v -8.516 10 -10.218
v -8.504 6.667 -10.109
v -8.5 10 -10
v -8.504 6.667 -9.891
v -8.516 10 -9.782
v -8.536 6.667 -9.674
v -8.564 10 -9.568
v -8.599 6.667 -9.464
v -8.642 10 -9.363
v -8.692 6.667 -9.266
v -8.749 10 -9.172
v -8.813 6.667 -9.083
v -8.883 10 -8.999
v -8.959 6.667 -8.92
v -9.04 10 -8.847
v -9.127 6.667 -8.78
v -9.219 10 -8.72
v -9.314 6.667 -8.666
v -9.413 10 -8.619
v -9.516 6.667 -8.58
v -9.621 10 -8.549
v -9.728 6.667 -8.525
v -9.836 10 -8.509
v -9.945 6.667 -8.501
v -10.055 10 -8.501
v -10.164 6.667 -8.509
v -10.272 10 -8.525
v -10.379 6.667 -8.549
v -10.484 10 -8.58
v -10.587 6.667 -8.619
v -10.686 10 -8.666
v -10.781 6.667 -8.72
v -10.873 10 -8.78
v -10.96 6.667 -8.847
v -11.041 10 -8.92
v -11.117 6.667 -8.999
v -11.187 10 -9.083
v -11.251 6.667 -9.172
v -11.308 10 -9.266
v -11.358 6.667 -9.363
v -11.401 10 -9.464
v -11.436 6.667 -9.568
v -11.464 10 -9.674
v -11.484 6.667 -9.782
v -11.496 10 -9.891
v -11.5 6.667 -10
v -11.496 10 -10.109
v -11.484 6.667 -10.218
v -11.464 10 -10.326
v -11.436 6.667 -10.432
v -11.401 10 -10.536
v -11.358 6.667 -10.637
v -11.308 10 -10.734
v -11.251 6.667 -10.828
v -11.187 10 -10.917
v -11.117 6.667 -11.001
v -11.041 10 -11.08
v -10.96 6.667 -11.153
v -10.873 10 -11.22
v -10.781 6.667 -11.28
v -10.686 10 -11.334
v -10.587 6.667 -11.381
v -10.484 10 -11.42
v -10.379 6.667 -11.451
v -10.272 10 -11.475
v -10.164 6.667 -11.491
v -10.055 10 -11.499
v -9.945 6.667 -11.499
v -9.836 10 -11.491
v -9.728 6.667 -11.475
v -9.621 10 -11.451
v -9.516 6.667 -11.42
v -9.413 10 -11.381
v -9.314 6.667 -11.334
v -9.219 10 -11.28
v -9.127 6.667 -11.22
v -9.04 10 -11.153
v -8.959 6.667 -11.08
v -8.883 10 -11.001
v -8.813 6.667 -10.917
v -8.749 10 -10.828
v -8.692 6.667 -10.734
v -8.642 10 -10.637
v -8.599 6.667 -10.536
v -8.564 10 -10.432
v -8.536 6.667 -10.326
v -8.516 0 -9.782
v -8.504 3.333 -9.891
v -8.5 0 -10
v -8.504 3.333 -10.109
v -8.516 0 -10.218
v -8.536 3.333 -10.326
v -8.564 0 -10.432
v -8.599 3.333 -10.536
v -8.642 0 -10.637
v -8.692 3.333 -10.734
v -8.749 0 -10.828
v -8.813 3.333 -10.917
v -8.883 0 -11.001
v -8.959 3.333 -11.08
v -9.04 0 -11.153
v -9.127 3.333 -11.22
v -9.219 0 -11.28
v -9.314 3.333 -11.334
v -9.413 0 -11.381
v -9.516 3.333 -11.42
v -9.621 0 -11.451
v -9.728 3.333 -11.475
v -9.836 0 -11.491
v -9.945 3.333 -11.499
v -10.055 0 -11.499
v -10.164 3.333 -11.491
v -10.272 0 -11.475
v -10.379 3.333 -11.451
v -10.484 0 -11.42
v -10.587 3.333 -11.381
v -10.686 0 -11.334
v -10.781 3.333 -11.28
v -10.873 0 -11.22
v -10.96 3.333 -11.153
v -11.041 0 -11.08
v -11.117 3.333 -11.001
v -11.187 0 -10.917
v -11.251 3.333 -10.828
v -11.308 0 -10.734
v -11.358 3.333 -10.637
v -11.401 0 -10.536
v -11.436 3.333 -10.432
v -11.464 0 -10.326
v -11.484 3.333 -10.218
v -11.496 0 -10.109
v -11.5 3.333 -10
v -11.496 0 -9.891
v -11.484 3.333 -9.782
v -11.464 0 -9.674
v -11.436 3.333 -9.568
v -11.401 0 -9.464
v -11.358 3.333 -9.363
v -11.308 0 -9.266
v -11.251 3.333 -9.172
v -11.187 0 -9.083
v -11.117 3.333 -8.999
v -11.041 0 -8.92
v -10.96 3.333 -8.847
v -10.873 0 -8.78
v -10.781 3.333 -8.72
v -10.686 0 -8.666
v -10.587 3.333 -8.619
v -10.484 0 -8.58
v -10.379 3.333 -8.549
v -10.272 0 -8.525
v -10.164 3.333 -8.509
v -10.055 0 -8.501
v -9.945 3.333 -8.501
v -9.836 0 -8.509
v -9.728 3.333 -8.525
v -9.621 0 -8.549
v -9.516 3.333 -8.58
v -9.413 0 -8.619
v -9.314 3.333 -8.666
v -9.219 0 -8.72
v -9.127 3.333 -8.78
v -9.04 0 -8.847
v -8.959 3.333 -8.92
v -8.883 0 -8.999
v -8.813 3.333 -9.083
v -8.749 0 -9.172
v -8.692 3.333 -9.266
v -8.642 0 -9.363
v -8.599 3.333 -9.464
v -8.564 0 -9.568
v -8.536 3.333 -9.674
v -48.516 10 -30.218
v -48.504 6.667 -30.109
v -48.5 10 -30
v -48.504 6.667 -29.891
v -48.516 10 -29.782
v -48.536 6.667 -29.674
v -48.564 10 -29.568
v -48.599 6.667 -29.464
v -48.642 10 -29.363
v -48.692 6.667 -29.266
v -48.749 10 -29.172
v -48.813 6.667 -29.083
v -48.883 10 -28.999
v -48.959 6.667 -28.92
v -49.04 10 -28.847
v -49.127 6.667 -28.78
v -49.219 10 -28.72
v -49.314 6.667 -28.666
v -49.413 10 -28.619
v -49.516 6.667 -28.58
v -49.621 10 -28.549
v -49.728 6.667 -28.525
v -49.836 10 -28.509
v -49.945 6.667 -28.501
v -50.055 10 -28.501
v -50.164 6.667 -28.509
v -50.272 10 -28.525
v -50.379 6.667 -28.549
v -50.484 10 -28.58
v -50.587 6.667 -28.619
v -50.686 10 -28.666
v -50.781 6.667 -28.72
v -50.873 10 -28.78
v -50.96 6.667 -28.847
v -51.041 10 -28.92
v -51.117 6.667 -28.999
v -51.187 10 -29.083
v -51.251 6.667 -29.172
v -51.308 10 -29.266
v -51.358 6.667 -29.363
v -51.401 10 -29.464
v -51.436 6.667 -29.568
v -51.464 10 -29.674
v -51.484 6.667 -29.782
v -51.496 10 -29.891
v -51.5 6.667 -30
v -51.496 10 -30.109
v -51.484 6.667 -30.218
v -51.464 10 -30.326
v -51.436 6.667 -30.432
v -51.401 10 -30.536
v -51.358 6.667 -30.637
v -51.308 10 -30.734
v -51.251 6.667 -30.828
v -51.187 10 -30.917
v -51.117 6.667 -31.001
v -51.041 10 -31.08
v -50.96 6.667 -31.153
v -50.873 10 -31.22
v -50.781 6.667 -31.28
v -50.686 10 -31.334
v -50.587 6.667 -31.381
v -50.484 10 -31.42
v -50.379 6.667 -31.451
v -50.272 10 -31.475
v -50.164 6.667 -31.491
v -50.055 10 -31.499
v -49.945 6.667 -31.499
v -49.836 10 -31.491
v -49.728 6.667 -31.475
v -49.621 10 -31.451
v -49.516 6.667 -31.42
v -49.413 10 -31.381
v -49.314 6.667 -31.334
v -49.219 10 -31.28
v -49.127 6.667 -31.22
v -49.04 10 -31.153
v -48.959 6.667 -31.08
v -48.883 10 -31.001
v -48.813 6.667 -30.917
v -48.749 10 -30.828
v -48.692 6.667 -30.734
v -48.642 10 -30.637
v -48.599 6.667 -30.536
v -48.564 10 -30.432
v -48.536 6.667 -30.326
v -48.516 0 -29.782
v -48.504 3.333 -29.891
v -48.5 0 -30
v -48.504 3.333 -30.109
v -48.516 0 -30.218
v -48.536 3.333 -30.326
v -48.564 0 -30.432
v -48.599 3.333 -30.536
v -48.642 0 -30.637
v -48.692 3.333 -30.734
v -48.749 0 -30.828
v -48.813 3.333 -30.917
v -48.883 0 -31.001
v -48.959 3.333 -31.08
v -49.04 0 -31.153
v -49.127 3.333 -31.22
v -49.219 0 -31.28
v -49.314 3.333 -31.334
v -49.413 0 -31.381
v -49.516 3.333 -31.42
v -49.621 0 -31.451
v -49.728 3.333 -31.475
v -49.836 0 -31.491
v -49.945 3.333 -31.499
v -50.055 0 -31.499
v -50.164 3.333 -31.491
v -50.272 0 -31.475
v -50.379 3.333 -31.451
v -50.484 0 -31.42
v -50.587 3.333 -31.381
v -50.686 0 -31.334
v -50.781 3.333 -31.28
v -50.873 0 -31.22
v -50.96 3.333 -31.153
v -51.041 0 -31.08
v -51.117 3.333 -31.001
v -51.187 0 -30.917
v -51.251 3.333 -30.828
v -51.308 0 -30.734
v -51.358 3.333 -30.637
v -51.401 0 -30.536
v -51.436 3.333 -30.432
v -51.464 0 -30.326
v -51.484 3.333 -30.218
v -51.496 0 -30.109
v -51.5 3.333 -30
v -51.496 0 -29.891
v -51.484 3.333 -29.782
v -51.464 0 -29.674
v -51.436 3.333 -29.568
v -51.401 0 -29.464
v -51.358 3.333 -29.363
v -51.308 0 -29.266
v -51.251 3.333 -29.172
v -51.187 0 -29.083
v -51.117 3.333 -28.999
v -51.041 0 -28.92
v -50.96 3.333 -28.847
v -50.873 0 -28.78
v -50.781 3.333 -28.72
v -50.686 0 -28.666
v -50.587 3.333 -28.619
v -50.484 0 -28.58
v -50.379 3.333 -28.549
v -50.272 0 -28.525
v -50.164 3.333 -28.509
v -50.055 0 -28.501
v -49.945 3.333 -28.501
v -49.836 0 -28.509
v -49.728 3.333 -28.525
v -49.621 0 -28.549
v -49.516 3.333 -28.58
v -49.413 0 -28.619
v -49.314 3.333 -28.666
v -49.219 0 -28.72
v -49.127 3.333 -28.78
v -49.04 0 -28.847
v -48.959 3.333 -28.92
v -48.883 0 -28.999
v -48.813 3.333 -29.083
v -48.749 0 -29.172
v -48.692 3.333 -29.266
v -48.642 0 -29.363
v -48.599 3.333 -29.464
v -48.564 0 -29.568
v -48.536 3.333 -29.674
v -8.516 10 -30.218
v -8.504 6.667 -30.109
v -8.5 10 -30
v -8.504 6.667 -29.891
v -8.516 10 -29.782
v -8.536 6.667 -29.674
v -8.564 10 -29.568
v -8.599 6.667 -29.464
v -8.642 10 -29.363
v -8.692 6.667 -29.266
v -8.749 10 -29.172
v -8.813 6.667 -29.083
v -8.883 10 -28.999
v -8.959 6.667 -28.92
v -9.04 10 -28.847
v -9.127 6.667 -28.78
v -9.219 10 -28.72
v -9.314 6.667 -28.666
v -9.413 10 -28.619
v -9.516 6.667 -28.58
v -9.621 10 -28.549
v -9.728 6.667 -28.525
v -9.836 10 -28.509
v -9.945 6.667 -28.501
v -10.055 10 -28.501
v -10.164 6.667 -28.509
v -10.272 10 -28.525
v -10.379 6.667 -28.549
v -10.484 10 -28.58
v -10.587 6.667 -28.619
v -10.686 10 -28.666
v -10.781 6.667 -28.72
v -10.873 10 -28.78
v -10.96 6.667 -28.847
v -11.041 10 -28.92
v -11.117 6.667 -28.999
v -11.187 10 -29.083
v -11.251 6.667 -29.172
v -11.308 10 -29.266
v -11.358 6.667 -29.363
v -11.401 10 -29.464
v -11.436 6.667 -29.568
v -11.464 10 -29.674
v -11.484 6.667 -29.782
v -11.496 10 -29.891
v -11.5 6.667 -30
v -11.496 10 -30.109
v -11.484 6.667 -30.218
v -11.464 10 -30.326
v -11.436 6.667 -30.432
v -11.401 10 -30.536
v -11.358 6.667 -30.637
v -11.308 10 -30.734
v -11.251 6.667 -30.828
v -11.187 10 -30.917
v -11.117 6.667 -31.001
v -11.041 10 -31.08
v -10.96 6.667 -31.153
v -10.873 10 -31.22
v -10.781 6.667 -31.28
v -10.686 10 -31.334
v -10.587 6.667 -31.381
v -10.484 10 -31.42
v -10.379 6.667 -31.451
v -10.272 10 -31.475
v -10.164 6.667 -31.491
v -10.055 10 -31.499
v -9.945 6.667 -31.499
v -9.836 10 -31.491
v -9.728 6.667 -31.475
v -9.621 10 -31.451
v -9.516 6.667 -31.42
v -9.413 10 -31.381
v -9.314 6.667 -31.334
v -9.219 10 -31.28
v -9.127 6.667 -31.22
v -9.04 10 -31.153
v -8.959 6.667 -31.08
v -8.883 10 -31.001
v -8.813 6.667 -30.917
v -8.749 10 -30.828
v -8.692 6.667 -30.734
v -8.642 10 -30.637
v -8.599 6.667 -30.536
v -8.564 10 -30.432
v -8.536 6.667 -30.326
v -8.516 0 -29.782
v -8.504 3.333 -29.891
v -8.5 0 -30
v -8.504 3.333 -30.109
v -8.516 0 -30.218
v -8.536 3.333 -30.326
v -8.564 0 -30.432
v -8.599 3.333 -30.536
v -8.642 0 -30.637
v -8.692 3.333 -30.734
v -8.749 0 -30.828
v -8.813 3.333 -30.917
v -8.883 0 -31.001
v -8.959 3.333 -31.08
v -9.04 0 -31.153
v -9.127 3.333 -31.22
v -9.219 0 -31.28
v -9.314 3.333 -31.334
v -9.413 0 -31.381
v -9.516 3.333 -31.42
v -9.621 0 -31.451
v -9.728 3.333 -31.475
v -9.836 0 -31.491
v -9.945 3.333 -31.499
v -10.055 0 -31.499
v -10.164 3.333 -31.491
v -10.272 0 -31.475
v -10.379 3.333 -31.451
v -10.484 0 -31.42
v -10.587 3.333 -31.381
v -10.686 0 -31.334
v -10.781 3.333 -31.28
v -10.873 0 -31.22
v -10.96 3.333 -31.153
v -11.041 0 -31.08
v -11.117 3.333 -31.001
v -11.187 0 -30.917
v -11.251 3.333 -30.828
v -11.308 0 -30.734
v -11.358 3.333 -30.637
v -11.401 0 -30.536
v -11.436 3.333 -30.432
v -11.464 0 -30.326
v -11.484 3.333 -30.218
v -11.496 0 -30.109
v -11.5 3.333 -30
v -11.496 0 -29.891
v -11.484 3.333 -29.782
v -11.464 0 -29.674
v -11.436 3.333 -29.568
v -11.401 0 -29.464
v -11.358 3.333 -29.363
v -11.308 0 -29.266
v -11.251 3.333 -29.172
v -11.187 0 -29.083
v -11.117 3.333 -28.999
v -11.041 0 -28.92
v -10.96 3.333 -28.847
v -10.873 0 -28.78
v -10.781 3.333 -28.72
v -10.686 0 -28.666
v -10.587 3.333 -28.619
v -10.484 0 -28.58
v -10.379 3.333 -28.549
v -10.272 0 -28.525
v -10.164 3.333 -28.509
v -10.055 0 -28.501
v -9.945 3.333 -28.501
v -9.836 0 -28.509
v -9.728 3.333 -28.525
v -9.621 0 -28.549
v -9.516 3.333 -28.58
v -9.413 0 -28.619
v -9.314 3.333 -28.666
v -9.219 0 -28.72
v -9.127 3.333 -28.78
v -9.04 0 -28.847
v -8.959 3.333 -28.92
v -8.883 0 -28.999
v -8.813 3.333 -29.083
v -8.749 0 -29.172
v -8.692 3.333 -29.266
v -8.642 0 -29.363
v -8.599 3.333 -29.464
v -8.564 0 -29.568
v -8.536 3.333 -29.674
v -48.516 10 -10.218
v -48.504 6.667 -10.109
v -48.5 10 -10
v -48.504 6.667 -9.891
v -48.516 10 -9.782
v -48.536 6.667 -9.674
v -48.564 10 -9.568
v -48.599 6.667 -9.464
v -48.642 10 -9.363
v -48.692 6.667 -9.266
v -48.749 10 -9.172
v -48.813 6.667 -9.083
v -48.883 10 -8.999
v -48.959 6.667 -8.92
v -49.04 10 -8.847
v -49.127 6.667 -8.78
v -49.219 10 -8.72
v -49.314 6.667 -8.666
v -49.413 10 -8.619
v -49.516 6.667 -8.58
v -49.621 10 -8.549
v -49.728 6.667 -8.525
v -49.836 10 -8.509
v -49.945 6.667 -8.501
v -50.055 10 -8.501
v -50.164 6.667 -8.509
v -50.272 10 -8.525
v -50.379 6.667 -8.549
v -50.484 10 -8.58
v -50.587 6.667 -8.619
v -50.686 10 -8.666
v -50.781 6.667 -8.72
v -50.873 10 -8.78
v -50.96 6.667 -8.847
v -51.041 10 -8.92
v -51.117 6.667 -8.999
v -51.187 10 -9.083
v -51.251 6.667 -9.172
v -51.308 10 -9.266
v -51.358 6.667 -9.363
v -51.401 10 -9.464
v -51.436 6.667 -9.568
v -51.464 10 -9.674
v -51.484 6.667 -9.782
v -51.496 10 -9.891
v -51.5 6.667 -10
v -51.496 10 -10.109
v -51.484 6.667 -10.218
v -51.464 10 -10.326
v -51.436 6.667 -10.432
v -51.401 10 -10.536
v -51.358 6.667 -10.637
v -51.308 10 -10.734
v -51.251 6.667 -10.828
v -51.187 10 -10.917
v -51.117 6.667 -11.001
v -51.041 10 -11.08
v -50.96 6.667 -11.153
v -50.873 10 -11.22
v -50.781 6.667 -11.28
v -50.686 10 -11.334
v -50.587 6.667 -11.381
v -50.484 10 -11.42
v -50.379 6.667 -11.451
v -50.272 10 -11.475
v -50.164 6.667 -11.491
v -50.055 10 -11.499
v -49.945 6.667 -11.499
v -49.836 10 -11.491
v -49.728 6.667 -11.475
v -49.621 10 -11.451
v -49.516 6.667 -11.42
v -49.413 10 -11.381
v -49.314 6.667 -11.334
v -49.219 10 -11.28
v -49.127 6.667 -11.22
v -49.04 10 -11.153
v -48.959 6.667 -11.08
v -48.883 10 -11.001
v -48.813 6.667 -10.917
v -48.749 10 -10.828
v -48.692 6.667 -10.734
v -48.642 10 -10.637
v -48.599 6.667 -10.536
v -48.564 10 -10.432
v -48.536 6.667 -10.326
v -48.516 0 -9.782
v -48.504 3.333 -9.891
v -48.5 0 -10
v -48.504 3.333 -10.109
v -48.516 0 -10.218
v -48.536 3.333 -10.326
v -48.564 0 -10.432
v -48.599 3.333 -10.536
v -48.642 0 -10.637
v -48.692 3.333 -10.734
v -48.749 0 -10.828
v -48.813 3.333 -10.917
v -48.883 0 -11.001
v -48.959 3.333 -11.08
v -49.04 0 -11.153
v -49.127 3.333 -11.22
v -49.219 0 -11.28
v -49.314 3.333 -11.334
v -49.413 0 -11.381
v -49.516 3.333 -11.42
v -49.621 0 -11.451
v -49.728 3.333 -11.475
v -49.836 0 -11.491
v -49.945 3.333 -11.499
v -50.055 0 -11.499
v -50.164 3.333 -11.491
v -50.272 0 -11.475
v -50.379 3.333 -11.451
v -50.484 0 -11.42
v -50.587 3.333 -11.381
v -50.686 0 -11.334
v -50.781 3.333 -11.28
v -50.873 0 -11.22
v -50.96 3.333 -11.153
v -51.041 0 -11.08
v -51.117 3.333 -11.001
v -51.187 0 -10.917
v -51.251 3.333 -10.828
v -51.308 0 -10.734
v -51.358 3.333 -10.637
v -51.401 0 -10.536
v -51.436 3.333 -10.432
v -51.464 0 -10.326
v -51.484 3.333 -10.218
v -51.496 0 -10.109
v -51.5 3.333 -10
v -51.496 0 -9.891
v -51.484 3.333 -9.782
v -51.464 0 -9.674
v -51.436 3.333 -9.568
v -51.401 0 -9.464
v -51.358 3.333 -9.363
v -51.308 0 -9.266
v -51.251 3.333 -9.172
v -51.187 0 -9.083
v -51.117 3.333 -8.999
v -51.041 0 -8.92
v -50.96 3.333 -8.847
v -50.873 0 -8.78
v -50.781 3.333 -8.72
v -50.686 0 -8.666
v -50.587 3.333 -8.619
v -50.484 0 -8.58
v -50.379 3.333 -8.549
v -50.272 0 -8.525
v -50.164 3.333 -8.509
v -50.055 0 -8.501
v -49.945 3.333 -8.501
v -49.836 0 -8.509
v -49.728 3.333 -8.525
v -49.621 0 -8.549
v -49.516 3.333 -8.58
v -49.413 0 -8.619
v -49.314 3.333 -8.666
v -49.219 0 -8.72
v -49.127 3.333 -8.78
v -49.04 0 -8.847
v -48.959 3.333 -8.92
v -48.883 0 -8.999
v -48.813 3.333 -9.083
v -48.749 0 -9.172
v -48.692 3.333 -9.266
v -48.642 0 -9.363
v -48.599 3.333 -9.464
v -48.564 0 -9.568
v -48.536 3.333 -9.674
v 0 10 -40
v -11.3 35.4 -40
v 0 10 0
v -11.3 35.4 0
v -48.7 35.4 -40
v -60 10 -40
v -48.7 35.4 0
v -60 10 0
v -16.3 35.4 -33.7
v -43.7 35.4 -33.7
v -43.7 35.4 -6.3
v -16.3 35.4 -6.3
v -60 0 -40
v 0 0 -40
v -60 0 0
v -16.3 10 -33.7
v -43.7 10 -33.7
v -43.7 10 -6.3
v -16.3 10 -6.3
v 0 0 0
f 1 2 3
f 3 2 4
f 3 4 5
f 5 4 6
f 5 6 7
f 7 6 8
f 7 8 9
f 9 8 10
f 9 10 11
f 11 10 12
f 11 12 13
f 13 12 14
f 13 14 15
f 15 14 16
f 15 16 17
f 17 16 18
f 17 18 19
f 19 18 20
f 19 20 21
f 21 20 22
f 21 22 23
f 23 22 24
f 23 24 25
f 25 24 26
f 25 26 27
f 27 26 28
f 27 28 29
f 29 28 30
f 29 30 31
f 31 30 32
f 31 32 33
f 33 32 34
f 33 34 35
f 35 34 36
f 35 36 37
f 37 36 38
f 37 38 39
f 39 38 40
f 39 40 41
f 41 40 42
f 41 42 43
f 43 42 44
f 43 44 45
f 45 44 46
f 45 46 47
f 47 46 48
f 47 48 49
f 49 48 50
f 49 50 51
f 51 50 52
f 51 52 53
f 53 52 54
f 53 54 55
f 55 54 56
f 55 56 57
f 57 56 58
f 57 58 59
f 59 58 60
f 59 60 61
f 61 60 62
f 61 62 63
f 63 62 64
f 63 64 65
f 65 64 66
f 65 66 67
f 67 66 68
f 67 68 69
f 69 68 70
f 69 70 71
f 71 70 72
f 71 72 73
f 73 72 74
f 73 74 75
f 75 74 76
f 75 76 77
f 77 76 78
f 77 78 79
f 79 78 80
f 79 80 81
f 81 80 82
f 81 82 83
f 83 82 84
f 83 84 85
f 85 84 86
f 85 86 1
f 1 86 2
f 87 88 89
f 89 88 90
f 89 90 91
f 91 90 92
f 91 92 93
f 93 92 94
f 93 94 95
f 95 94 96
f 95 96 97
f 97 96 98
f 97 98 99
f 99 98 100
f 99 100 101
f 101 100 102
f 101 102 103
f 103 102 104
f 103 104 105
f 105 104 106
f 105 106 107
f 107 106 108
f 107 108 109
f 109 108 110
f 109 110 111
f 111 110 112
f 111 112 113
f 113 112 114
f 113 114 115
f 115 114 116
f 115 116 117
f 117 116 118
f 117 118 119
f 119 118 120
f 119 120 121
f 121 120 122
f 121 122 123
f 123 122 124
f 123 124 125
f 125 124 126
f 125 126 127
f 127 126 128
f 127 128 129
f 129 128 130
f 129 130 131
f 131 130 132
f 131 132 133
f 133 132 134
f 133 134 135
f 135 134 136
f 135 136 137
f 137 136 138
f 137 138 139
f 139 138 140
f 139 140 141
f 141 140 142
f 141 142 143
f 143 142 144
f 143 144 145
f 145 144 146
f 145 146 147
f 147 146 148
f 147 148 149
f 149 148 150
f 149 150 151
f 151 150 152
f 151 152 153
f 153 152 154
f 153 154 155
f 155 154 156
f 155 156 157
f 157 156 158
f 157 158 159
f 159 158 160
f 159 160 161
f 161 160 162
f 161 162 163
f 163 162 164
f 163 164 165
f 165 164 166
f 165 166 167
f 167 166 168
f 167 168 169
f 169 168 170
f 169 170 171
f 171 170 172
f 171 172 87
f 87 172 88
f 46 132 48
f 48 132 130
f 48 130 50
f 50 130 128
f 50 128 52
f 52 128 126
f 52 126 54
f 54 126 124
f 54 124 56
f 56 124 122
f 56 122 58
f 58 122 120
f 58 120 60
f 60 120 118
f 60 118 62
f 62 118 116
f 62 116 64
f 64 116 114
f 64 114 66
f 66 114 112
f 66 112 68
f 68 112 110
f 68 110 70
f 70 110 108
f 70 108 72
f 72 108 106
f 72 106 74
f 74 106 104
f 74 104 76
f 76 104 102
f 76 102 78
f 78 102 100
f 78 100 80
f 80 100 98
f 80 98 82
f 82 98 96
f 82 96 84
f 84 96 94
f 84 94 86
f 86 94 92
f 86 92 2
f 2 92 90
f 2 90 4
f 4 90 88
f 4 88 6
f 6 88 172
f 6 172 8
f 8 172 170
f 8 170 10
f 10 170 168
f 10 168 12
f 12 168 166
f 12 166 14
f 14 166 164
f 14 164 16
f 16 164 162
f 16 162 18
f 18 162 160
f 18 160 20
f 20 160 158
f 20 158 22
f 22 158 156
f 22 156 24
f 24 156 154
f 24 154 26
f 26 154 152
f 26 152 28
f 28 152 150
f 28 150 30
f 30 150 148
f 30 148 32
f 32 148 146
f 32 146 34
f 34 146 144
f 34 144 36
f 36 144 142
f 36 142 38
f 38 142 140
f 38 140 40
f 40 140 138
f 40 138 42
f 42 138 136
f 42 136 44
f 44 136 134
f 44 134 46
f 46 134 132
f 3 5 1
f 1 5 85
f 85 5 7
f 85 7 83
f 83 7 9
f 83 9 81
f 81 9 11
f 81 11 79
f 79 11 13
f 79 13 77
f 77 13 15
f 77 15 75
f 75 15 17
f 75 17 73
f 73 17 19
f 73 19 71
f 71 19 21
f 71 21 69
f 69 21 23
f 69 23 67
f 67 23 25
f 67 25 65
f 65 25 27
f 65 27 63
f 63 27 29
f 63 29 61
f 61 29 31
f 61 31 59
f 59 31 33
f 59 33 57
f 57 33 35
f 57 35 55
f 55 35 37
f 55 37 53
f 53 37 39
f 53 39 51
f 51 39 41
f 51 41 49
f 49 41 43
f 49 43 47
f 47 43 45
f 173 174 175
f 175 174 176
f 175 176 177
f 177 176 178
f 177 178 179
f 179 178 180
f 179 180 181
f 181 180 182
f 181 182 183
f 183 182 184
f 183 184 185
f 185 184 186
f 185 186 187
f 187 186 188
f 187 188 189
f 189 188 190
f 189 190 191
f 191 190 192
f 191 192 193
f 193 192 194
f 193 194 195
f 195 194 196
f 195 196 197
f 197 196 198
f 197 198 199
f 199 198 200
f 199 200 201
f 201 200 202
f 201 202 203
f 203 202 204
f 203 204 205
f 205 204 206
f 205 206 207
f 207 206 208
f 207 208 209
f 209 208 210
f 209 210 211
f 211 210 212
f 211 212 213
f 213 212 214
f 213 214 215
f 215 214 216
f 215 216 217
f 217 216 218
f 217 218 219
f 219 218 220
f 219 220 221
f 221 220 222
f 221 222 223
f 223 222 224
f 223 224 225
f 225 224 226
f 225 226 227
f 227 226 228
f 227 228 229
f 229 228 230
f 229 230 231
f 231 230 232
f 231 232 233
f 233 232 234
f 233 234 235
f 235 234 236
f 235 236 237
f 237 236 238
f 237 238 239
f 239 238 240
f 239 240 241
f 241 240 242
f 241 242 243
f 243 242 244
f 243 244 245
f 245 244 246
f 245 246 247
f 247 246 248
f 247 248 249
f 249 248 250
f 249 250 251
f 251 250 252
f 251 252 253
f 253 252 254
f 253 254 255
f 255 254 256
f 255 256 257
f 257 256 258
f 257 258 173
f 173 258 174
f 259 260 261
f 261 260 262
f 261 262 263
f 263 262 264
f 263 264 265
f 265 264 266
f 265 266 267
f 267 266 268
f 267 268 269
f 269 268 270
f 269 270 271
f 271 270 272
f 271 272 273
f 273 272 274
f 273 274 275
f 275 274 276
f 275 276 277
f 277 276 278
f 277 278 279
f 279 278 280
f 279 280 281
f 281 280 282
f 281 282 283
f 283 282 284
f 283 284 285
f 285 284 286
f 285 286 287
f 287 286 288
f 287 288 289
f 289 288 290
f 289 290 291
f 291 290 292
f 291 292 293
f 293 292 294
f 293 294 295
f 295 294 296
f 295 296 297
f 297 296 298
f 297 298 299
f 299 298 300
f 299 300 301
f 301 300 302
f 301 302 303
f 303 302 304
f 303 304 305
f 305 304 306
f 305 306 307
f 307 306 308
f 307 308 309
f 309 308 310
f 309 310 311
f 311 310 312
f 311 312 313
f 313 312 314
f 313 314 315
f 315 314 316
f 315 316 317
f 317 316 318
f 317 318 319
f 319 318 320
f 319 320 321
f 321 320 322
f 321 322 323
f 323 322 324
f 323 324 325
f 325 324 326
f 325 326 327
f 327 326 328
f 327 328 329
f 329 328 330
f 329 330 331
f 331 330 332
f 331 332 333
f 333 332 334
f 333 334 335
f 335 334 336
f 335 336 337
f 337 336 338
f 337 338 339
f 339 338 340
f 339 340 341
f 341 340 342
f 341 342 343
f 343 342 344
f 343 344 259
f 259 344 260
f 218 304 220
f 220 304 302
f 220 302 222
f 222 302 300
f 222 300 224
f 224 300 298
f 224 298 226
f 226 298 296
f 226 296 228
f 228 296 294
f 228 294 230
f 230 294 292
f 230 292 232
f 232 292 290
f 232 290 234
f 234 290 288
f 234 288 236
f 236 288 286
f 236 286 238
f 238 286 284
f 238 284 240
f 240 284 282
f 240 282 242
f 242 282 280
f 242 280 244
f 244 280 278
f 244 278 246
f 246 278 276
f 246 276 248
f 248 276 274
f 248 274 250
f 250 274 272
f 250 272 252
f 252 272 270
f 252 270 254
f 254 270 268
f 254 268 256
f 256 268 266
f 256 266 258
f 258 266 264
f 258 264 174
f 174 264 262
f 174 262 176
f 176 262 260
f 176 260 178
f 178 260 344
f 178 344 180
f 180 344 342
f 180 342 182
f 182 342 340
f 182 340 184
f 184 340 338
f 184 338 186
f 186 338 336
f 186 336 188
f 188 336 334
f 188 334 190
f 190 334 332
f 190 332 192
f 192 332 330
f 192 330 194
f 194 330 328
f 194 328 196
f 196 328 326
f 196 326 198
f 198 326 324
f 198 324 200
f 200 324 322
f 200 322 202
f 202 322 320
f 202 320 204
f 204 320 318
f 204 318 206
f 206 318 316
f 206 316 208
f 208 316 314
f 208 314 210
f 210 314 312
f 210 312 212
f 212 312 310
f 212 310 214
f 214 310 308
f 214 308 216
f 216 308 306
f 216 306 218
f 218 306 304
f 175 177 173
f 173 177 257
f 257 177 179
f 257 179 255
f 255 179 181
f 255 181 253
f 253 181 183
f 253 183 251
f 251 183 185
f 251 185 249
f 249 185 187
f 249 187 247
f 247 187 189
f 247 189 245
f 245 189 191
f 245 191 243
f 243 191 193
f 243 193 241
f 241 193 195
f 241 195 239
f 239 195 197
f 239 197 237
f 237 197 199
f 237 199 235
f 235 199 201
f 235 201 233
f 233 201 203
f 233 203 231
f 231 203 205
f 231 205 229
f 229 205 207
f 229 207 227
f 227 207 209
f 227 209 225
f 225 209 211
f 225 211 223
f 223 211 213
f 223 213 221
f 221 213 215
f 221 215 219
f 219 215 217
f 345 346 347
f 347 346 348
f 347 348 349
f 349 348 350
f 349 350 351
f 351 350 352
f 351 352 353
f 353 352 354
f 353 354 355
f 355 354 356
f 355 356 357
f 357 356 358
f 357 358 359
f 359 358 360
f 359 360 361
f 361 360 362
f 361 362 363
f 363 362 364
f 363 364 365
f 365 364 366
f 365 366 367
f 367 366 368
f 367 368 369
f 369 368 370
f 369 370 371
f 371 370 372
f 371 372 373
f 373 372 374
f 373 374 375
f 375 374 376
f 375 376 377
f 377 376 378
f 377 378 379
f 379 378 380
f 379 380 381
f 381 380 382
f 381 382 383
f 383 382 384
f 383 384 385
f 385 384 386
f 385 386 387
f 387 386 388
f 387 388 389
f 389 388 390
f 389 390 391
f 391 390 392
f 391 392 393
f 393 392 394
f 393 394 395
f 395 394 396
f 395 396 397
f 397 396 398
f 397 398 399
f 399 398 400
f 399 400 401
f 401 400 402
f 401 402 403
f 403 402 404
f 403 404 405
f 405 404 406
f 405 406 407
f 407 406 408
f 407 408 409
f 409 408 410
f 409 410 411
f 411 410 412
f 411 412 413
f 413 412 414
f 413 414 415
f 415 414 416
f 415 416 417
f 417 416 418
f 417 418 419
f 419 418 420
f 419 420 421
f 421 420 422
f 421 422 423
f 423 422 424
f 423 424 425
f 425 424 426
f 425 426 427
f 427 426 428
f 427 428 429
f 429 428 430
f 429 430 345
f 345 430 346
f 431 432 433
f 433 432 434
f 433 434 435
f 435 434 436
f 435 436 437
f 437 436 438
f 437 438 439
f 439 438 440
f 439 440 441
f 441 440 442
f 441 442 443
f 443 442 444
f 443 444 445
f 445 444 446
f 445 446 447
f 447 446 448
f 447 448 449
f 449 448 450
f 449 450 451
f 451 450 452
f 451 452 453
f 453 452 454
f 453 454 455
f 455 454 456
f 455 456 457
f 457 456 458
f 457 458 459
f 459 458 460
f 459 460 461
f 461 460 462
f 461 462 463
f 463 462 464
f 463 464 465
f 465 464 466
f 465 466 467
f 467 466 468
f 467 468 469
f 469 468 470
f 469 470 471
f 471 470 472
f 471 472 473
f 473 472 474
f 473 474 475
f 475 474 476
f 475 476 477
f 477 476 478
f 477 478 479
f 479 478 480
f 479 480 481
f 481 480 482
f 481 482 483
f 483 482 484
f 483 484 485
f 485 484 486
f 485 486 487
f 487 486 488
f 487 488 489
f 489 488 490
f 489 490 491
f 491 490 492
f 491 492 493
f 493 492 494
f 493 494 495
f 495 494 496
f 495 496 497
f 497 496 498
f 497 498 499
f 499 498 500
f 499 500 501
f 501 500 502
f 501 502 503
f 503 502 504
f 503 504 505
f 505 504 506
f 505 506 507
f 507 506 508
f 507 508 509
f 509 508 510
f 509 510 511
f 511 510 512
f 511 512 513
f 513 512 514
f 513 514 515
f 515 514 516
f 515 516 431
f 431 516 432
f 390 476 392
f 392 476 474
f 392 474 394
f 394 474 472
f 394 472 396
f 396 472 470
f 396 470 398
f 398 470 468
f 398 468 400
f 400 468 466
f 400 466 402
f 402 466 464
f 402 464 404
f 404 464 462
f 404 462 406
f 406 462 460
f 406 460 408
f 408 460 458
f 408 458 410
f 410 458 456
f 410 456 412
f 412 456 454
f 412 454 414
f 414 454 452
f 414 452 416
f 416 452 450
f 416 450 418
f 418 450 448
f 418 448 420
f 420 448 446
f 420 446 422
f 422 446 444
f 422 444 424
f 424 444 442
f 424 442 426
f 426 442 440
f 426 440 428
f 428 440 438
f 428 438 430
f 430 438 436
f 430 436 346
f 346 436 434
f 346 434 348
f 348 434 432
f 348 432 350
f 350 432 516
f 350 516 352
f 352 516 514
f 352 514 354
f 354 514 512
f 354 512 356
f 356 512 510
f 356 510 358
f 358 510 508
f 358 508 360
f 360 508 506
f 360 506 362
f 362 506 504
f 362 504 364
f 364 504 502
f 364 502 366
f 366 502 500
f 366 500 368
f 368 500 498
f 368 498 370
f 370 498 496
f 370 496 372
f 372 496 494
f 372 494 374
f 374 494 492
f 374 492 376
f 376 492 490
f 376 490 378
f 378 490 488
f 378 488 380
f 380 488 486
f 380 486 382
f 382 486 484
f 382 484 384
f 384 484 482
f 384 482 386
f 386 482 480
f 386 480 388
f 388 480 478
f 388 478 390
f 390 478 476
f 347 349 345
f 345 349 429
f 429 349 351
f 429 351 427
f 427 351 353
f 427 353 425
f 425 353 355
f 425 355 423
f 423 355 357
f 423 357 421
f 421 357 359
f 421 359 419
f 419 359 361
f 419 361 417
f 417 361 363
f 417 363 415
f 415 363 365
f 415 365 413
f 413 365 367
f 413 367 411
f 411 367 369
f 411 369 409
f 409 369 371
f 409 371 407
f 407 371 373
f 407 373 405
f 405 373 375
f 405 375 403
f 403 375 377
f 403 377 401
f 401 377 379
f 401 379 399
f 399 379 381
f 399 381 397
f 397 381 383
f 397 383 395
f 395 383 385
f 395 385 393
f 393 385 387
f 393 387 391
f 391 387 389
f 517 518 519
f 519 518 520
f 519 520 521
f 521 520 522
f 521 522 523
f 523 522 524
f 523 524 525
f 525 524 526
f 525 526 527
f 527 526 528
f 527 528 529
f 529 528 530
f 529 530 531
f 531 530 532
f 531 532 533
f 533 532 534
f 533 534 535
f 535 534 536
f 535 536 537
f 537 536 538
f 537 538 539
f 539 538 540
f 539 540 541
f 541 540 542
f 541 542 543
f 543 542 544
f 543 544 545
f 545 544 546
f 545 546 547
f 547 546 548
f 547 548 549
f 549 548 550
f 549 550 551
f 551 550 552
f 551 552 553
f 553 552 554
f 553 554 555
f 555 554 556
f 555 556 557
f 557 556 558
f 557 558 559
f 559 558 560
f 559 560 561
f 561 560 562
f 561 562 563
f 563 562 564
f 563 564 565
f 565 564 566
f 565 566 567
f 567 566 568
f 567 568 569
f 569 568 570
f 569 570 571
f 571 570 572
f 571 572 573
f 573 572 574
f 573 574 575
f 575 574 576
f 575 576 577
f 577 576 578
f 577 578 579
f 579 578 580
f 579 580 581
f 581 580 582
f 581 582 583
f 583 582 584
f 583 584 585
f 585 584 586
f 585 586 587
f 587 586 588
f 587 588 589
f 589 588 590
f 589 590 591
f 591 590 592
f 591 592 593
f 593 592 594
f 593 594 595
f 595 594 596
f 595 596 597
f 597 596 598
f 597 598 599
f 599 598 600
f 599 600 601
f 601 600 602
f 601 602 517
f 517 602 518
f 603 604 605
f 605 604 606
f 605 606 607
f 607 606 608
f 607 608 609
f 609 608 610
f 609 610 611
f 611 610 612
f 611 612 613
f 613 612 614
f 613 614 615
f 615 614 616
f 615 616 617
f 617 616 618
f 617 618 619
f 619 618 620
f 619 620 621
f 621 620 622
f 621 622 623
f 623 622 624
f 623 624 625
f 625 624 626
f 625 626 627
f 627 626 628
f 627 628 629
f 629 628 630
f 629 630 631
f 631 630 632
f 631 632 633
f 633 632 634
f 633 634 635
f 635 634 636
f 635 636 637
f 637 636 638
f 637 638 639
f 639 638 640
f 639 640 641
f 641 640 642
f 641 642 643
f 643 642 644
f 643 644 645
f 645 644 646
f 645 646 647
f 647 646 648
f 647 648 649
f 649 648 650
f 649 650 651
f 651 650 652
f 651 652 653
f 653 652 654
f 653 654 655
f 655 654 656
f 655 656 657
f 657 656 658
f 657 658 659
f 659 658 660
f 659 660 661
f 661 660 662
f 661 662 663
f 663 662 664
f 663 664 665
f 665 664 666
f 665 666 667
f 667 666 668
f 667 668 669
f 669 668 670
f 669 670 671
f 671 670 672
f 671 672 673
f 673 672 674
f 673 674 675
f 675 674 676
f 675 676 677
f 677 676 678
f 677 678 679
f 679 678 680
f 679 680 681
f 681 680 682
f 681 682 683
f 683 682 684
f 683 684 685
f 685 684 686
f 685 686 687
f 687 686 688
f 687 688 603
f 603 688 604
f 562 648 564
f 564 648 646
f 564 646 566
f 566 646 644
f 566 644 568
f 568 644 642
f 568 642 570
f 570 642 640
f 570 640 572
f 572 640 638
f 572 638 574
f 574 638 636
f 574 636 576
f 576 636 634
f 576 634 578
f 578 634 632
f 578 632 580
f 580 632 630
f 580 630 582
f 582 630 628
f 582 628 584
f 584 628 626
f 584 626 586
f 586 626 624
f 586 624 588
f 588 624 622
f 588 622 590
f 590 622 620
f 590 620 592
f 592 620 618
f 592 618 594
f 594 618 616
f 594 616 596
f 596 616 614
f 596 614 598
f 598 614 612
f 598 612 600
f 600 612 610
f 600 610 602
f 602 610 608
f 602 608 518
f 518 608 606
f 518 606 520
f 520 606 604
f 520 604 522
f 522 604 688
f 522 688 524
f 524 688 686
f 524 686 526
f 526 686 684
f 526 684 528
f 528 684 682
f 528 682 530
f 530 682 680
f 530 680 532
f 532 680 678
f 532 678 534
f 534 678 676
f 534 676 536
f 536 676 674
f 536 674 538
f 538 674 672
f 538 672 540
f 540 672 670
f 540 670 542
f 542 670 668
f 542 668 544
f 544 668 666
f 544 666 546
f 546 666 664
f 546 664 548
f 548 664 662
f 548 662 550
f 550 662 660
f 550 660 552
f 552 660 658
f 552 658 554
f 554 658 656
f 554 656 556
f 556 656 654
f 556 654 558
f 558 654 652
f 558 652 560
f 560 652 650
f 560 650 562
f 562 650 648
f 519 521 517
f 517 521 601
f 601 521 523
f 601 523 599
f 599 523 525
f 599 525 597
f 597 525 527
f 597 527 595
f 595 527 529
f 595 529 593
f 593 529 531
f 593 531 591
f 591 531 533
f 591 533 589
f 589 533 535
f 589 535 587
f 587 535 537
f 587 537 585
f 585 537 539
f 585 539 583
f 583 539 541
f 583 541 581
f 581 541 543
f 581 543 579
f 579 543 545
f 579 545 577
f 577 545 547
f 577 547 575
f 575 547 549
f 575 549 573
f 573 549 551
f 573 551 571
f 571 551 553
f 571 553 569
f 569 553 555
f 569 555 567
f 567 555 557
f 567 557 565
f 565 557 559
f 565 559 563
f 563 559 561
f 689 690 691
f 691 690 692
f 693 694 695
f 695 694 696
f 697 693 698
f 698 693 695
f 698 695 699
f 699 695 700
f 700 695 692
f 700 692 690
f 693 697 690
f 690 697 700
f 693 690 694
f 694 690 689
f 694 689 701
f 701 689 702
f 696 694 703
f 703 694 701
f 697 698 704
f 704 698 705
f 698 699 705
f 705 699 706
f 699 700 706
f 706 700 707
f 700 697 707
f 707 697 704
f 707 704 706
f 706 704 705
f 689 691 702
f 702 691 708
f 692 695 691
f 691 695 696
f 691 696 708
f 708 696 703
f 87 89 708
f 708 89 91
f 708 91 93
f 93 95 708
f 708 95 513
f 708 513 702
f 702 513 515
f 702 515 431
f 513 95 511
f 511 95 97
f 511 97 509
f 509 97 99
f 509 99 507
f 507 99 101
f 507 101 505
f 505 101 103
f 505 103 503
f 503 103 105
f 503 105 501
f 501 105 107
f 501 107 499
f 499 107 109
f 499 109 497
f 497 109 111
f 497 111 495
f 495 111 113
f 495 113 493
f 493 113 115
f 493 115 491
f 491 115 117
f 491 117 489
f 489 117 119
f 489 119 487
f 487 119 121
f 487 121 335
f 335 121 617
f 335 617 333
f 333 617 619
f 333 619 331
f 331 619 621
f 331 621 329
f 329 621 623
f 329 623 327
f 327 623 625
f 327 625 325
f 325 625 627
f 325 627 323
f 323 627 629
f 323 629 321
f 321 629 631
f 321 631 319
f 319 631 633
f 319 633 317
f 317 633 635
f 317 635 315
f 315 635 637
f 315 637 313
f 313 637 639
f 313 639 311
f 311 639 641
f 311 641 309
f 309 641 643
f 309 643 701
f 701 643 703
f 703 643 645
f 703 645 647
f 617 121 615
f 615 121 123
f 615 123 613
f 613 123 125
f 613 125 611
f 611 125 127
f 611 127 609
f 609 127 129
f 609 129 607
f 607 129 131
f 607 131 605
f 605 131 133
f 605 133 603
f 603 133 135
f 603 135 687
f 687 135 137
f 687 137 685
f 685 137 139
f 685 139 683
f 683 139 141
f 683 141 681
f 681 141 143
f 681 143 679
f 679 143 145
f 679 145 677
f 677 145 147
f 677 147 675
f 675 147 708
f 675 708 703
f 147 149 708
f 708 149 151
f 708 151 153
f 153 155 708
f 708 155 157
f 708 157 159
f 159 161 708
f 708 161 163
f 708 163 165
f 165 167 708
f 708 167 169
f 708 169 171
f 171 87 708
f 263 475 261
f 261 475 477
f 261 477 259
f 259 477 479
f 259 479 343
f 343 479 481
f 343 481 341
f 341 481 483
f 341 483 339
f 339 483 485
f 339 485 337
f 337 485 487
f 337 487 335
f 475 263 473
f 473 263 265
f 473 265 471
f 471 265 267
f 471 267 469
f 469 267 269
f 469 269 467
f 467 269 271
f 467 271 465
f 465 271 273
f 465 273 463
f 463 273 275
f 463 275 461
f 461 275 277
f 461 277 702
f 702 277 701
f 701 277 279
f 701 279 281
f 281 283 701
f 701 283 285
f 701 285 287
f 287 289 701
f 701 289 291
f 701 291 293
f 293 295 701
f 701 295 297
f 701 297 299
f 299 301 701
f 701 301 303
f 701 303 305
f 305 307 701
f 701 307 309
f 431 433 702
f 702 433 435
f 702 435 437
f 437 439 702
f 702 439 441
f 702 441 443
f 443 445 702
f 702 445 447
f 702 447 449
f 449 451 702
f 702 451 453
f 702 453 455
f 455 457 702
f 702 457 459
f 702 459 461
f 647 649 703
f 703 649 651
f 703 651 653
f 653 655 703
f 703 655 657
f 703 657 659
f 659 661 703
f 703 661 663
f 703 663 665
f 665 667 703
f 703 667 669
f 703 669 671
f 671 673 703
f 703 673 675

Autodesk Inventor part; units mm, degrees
ref_plane "YZ Plane" through (0, 0, 0) normal (1, 0, 0) x (0, 1, 0)
ref_plane "XZ Plane" through (0, 0, 0) normal (0, 1, 0) x (-1, 0, 0)
ref_plane "XY Plane" through (0, 0, 0) normal (0, 0, 1) x (1, 0, 0)
sketch "Sketch1" plane through (0, 0, 0) normal (0, 1, 0) x (-1, 0, 0)
  line L0 (0, 0) -> (60, 0)
  line L1 (60, 0) -> (60, -40)
  line L2 (60, -40) -> (0, -40)
  line L3 (0, -40) -> (0, 0)
  dimension "d0" = 60
  dimension "d1" = 40
extrude "Extrusion1" add sketch "Sketch1" along normal blind 35.4
sketch "Sketch2" plane through (0, 35.4, 0) normal (0, 1, 0) x (1, 0, 0)
  line L0 (-60, 0) -> (0, 0) projected
  line L1 (0, 40) -> (-60, 40) projected
  line L2 (-43.7, 6.3) -> (-43.7, 33.7)
  line L3 (-43.7, 33.7) -> (-16.3, 33.7)
  line L4 (-16.3, 33.7) -> (-16.3, 20)
  line L5 (-16.3, 20) -> (-16.3, 6.3)
  line L6 (-16.3, 6.3) -> (-43.7, 6.3)
  line L7 (-48.7, 38.7) -> (-48.7, 1.3)
  line L8 (-48.7, 1.3) -> (-11.3, 1.3)
  line L9 (-11.3, 1.3) -> (-11.3, 38.7)
  line L10 (-11.3, 38.7) -> (-48.7, 38.7)
  dimension "d9" = 5
extrude "Extrusion2" cut sketch "Sketch2" against normal blind 25.4 contours L2 L3 L4 L5 L6
sketch "Sketch3" plane through (-60, 0, 0) normal (0, 0, 1) x (1, 0, 0)
  line L0 (60, 0) -> (60, 35.4) projected
  line L1 (60, 35.4) -> (30, 35.4)
  line L2 (0, 35.4) -> (60, 35.4) projected
  line L3 (30, 35.4) -> (11.3, 35.4)
  line L4 (0, 0) -> (0, 35.4) projected
  line L5 (0, 0) -> (0, 10)
  line L6 (0, 10) -> (11.3, 35.4)
  line L7 (0, 35.4) -> (11.3, 35.4)
  line L8 (0, 35.4) -> (0, 10)
  line L9 (60, 0) -> (0, 0) projected
  line L10 (60, 35.4) -> (0, 35.4)
  line L11 (60, 0) -> (60, 35.4)
  line L12 (60, 10) -> (48.7, 35.4)
  line L13 (60, 35.4) -> (60, 10)
  dimension "d12" = 18.7
  dimension "d13" = 10
extrude "Extrusion3" cut sketch "Sketch3" against normal through all contours L12 L1 L0 | L4 L2 L6
sketch "Sketch4" plane through (0, 0, 0) normal (0, -1, 0) x (1, 0, 0)
  line L0 (-60, 0) -> (0, 0) projected
  line L1 (-11.3, -40) -> (-48.7, -40) projected
  circle A0 centre (-50, -10) radius 1.5
  circle A1 centre (-50, -30) radius 1.5
  circle A2 centre (-10, -30) radius 1.5
  circle A3 centre (-10, -10) radius 1.5
  dimension "d20" = 3
extrude "Extrusion4" cut sketch "Sketch4" against normal blind 10
properties part number "Tilt_Metal_Attachment"
